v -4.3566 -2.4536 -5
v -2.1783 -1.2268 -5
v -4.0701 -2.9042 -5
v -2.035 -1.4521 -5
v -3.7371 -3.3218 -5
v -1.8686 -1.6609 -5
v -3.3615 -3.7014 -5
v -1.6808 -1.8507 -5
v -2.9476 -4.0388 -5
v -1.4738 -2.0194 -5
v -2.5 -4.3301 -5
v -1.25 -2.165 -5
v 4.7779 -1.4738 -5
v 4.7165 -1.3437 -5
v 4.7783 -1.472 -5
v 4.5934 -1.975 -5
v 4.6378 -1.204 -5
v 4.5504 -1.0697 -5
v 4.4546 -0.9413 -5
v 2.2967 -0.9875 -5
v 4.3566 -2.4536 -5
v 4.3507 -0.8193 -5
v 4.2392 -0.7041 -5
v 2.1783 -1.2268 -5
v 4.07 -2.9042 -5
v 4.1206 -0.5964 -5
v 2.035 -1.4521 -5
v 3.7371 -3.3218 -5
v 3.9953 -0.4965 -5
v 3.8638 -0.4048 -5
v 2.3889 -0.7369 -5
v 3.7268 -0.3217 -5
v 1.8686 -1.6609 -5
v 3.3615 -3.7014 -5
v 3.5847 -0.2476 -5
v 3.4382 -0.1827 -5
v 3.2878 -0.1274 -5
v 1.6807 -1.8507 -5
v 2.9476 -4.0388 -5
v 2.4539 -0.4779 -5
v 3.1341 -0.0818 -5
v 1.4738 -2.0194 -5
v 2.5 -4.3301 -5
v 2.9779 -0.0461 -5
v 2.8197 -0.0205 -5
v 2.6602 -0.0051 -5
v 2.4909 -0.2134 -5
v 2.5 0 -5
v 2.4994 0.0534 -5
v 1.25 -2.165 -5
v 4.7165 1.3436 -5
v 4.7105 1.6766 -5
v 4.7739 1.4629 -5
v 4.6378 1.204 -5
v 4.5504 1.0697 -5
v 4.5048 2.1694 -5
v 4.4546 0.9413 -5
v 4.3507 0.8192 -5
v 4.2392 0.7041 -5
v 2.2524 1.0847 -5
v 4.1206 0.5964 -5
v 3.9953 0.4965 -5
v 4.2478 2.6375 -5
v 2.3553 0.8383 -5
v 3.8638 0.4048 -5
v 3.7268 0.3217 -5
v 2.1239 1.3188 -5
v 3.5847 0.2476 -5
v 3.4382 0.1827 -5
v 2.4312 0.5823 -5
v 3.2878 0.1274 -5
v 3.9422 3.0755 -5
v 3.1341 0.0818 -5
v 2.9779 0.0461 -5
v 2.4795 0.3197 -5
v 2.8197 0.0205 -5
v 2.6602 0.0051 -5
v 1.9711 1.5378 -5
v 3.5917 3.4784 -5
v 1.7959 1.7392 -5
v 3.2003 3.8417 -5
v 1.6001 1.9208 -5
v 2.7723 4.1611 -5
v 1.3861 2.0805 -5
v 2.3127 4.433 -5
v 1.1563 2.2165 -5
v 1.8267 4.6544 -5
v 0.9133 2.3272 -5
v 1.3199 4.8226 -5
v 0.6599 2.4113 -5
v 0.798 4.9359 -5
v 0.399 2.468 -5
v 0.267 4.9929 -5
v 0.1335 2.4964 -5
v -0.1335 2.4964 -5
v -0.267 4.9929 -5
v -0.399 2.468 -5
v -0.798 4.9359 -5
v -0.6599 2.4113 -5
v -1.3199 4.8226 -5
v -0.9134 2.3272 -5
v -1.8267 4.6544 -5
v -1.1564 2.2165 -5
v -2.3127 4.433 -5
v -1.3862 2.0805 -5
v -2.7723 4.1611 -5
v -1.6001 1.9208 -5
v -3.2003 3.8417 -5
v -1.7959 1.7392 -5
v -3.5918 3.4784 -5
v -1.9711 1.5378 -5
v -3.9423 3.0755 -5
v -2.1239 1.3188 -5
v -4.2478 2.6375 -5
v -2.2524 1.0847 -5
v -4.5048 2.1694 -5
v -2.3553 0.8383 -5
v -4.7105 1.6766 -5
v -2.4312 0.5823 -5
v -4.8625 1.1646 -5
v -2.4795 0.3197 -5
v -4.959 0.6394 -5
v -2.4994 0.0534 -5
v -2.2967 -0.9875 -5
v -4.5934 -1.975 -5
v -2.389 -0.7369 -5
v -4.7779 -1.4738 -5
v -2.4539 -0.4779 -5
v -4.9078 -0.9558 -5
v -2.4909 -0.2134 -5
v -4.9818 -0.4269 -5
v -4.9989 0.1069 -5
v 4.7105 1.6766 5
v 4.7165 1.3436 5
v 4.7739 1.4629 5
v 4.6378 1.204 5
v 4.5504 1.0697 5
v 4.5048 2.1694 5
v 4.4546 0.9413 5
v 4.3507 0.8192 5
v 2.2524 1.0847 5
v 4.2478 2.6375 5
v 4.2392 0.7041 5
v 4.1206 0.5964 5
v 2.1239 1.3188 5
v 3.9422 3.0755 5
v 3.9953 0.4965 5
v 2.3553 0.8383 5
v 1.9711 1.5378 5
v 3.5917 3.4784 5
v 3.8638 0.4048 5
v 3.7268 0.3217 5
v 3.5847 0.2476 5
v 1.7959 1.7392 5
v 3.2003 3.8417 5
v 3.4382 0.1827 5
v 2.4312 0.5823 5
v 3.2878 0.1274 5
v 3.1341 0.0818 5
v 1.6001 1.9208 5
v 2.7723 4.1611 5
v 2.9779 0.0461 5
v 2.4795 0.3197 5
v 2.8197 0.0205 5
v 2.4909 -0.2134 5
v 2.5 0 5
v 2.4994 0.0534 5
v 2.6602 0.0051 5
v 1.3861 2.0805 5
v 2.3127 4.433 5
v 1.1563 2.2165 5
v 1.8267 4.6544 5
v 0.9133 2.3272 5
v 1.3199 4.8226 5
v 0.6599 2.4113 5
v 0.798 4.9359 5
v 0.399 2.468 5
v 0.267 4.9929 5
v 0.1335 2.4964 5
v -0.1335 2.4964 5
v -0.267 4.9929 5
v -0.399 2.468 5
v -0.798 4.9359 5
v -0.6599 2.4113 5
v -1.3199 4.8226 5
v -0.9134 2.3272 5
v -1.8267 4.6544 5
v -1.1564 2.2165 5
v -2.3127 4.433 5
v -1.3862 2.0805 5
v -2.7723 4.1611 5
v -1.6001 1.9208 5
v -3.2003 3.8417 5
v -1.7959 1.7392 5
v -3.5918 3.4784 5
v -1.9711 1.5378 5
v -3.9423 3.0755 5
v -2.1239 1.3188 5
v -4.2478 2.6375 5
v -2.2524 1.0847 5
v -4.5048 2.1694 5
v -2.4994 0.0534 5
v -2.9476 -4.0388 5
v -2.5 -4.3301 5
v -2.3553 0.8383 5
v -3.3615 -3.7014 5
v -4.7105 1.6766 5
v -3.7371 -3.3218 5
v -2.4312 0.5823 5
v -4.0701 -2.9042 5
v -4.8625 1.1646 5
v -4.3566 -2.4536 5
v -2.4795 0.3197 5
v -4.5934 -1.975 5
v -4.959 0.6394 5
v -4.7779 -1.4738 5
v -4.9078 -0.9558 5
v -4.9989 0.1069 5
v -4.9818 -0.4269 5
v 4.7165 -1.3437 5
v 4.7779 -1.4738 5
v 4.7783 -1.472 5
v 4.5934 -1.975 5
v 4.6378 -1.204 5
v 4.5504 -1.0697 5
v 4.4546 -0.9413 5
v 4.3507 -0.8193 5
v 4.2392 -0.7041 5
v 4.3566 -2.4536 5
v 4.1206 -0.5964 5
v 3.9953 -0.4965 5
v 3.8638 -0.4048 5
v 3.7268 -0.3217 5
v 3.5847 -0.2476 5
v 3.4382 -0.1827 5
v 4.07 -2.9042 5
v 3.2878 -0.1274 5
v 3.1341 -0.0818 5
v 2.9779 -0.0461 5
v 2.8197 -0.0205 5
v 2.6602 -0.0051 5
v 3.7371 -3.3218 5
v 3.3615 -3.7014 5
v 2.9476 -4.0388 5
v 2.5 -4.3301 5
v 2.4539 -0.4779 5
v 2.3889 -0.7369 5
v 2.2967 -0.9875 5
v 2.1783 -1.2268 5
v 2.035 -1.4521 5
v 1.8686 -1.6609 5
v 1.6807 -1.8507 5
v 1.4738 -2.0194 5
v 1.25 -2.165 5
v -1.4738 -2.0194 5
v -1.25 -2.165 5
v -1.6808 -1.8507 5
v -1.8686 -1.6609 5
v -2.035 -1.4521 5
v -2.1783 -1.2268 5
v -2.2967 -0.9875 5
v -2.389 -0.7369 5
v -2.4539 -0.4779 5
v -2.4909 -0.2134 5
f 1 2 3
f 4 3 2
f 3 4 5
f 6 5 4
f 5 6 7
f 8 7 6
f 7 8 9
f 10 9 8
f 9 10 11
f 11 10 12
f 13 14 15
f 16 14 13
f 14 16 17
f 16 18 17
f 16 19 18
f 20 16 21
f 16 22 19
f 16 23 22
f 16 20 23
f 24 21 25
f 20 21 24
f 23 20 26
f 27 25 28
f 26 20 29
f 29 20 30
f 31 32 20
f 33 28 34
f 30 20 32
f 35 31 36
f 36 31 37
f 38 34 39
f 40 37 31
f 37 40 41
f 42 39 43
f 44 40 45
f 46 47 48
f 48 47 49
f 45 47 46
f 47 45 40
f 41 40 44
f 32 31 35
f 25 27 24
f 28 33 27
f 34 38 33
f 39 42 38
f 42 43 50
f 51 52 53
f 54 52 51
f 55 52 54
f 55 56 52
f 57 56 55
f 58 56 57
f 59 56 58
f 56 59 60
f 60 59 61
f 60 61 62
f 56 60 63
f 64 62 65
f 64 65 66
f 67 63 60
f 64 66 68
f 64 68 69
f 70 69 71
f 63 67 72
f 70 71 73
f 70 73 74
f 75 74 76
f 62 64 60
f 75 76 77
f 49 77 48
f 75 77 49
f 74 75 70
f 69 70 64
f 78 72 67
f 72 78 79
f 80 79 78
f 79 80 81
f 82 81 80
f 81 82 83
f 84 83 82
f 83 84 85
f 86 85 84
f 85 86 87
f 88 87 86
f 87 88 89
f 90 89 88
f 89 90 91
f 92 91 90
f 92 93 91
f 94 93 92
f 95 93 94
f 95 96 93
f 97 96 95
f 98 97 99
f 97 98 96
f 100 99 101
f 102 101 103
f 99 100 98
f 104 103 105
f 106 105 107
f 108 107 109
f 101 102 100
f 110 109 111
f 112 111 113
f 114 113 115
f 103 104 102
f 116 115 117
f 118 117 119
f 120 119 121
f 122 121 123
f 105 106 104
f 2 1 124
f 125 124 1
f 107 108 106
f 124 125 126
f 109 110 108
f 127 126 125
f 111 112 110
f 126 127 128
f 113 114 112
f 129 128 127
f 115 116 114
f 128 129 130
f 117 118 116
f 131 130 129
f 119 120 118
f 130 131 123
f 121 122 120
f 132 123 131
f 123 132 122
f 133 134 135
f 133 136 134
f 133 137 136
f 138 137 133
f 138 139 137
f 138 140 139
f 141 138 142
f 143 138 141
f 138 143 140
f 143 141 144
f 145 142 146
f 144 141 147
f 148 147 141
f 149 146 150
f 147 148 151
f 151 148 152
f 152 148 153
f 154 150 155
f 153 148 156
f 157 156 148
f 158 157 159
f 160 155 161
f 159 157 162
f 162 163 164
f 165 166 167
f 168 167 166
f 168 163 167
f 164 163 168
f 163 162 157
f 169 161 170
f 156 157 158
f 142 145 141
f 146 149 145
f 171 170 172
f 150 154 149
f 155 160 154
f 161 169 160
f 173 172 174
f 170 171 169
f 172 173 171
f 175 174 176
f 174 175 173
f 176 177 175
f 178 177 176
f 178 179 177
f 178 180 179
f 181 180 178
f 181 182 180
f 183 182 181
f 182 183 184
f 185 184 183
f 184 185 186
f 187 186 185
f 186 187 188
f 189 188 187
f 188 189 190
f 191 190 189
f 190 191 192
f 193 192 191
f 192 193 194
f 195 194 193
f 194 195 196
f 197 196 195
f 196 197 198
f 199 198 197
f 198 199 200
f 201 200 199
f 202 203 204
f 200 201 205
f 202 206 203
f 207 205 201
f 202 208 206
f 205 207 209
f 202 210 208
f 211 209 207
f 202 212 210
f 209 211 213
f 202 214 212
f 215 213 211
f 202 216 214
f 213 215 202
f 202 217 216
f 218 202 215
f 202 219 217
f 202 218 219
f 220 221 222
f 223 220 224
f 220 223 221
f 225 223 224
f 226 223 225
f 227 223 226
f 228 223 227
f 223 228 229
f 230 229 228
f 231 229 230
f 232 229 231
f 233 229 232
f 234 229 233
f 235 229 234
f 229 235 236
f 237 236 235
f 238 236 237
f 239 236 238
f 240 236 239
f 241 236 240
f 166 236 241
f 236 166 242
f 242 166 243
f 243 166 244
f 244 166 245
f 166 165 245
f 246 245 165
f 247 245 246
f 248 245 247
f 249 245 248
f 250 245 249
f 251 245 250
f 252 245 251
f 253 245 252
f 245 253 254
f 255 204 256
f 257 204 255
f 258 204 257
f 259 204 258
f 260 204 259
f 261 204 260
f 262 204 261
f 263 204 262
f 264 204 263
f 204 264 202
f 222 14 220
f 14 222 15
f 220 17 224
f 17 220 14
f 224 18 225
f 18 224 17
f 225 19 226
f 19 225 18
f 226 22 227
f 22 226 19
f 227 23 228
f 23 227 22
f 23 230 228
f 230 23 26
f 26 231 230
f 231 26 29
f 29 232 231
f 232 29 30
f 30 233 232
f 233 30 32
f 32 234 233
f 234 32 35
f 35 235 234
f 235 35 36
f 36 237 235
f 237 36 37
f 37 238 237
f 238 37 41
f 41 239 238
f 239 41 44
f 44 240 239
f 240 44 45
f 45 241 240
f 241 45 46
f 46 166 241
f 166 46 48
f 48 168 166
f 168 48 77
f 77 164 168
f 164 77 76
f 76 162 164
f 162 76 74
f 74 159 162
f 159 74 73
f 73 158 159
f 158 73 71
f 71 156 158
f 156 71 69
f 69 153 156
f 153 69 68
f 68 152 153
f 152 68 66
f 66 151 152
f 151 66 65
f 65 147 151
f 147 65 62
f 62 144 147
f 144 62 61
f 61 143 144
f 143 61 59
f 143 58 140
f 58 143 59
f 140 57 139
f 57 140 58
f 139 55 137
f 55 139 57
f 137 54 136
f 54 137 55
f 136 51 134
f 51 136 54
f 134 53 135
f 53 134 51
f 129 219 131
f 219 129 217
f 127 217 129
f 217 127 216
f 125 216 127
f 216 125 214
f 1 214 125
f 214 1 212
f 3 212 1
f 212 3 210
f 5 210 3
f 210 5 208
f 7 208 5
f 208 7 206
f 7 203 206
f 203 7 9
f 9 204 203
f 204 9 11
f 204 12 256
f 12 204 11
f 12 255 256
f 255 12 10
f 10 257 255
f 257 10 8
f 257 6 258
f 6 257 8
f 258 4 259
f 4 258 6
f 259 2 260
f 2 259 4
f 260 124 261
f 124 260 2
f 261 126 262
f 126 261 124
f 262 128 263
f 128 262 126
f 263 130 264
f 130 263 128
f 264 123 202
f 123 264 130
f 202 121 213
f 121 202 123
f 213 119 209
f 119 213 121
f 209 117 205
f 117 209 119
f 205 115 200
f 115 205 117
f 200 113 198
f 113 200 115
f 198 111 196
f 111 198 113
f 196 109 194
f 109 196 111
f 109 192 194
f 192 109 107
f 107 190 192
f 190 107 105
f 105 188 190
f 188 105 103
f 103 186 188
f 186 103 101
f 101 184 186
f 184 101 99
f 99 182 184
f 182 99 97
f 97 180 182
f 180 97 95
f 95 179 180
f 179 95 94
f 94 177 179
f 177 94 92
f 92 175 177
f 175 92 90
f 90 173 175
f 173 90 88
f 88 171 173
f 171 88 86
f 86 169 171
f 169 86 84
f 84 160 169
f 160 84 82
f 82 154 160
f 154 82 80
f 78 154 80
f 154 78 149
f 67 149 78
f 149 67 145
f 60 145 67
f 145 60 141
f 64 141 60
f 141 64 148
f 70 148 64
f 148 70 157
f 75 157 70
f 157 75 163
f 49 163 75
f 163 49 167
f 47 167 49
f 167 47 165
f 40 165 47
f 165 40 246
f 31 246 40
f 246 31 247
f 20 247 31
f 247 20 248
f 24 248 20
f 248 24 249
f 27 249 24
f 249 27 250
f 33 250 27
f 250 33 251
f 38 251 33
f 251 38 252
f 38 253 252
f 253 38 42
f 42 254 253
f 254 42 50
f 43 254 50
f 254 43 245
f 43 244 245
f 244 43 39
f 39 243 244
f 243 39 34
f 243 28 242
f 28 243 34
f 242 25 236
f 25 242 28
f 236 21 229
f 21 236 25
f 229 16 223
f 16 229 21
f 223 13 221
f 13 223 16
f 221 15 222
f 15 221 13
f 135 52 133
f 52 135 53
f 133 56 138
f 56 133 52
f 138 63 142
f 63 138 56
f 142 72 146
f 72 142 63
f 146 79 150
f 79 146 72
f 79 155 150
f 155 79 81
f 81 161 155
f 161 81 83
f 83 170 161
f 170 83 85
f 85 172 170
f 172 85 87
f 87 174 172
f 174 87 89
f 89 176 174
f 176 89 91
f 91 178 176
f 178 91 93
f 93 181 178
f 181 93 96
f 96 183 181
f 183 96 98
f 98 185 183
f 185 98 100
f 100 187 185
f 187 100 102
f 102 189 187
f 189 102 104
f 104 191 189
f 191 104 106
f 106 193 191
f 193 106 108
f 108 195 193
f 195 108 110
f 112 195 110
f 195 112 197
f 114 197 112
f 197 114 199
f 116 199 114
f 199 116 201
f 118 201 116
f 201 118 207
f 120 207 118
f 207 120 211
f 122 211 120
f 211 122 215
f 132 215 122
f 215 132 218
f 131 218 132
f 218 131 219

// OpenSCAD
// Generated by SolidPython 1.1.3 on 2025-02-20 04:03:44
$fn=50;


intersection() {
	translate(v = [-5.0000000000, -5.0000000000, -5.0000000000]) {
		linear_extrude(height = 10) {
			polygon(points = [[7.5000000000, 10.0000000000], [7.6601755500, 9.9948634819], [7.8196929042, 9.9794750346], [7.9778965718, 9.9538978925], [8.1341364598, 9.9182371576], [8.2877705451, 9.8726393675], [8.4381675122, 9.8172918934], [8.5847093478, 9.7524221698], [8.7267938800, 9.6782967603], [8.8638372530, 9.5952202622], [8.9952763262, 9.5035340547], [9.1205709883, 9.4036148959], [9.2392063765, 9.2958733752], [9.3506949927, 9.1807522257], [9.4545787062, 9.0587245046], [9.5504306365, 8.9302916503], [9.6378569075, 8.7959814208], [9.7164982659, 8.6563457256], [9.7860315575, 8.5119583578], [9.8461710551, 8.3634126361], [9.8966696326, 8.2113189666], [9.9373197805, 8.0563023349], [9.9679544585, 7.8989997376], [9.9884477824, 7.7400575648], [9.9987155405, 7.5801289439], [9.9987155405, 7.4198710561], [9.9884477824, 7.2599424352], [9.9679544585, 7.1010002624], [9.9373197805, 6.9436976651], [9.8966696326, 6.7886810334], [9.8461710551, 6.6365873639], [9.7860315575, 6.4880416422], [9.7164982659, 6.3436542744], [9.6378569075, 6.2040185792], [9.5504306365, 6.0697083497], [9.4545787062, 5.9412754954], [9.3506949927, 5.8192477743], [9.2392063765, 5.7041266248], [9.1205709883, 5.5963851041], [8.9952763262, 5.4964659453], [8.8638372530, 5.4047797378], [8.7267938800, 5.3217032397], [8.5847093478, 5.2475778302], [8.4381675122, 5.1827081066], [8.2877705451, 5.1273606325], [8.1341364598, 5.0817628424], [7.9778965718, 5.0461021075], [7.8196929042, 5.0205249654], [7.6601755500, 5.0051365181], [7.5000000000, 5.0000000000], [7.5000000000, 5.0000000000], [7.6601755500, 4.9948634819], [7.8196929042, 4.9794750346], [7.9778965718, 4.9538978925], [8.1341364598, 4.9182371576], [8.2877705451, 4.8726393675], [8.4381675122, 4.8172918934], [8.5847093478, 4.7524221698], [8.7267938800, 4.6782967603], [8.8638372530, 4.5952202622], [8.9952763262, 4.5035340547], [9.1205709883, 4.4036148959], [9.2392063765, 4.2958733752], [9.3506949927, 4.1807522257], [9.4545787062, 4.0587245046], [9.5504306365, 3.9302916503], [9.6378569075, 3.7959814208], [9.7164982659, 3.6563457256], [9.7860315575, 3.5119583578], [9.8461710551, 3.3634126361], [9.8966696326, 3.2113189666], [9.9373197805, 3.0563023349], [9.9679544585, 2.8989997376], [9.9884477824, 2.7400575648], [9.9987155405, 2.5801289439], [9.9987155405, 2.4198710561], [9.9884477824, 2.2599424352], [9.9679544585, 2.1010002624], [9.9373197805, 1.9436976651], [9.8966696326, 1.7886810334], [9.8461710551, 1.6365873639], [9.7860315575, 1.4880416422], [9.7164982659, 1.3436542744], [9.6378569075, 1.2040185792], [9.5504306365, 1.0697083497], [9.4545787062, 0.9412754954], [9.3506949927, 0.8192477743], [9.2392063765, 0.7041266248], [9.1205709883, 0.5963851041], [8.9952763262, 0.4964659453], [8.8638372530, 0.4047797378], [8.7267938800, 0.3217032397], [8.5847093478, 0.2475778302], [8.4381675122, 0.1827081066], [8.2877705451, 0.1273606325], [8.1341364598, 0.0817628424], [7.9778965718, 0.0461021075], [7.8196929042, 0.0205249654], [7.6601755500, 0.0051365181], [7.5000000000, 0.0000000000], [0, 0], [0, 10]]);
		}
	}
	rotate(a = -90, v = [0, 0, 1]) {
		translate(v = [-5.0000000000, -5.0000000000, -5.0000000000]) {
			linear_extrude(height = 10) {
				polygon(points = [[9.3301270189, 7.5000000000], [9.0387948484, 7.9475644476], [8.7013899854, 8.3615044513], [8.3217613875, 8.7370979763], [7.9042396813, 9.0700604263], [7.4535877600, 9.3565935206], [6.9749464512, 9.5934286231], [6.4737758721, 9.7778640289], [5.9557931435, 9.9077957850], [5.4269071715, 9.9817416901], [4.8931512411, 9.9988582039], [4.3606141916, 9.9589500691], [3.8353709579, 9.8624725392], [3.3234132705, 9.7105261849], [2.8305813044, 9.5048443395], [2.3624970575, 9.2477733259], [1.9245002169, 8.9422456905], [1.5215872470, 8.5917467505], [1.1583543913, 8.2002748347], [0.8389452414, 7.7722956725], [0.5670034681, 7.3126914512], [0.3456312568, 6.8267051218], [0.1773539185, 6.3198805903], [0.0640910829, 5.7979994752], [0.0071347997, 5.2670151533], [0.0071347997, 4.7329848467], [0.0640910829, 4.2020005248], [0.1773539185, 3.6801194097], [0.3456312568, 3.1732948782], [0.5670034681, 2.6873085488], [0.8389452414, 2.2277043275], [1.1583543913, 1.7997251653], [1.5215872470, 1.4082532495], [1.9245002169, 1.0577543095], [2.3624970575, 0.7522266741], [2.8305813044, 0.4951556605], [3.3234132705, 0.2894738151], [3.8353709579, 0.1375274608], [4.3606141916, 0.0410499309], [4.8931512411, 0.0011417961], [5.4269071715, 0.0182583099], [5.9557931435, 0.0922042150], [6.4737758721, 0.2221359711], [6.9749464512, 0.4065713769], [7.4535877600, 0.6434064794], [7.9042396813, 0.9299395737], [8.3217613875, 1.2629020237], [8.7013899854, 1.6384955487], [9.0387948484, 2.0524355524], [9.3301270189, 2.5000000000], [7.1650635095, 3.7500000000], [7.0193974242, 3.5262177762], [6.8506949927, 3.3192477743], [6.6608806938, 3.1314510119], [6.4521198406, 2.9649697869], [6.2267938800, 2.8217032397], [5.9874732256, 2.7032856885], [5.7368879360, 2.6110679855], [5.4778965718, 2.5461021075], [5.2134535857, 2.5091291549], [4.9465756205, 2.5005708980], [4.6803070958, 2.5205249654], [4.4176854790, 2.5687637304], [4.1617066352, 2.6447369076], [3.9152906522, 2.7475778302], [3.6812485287, 2.8761133371], [3.4622501085, 3.0288771547], [3.2607936235, 3.2041266248], [3.0791771957, 3.3998625827], [2.9194726207, 3.6138521637], [2.7835017341, 3.8436542744], [2.6728156284, 4.0866474391], [2.5886769593, 4.3400597048], [2.5320455415, 4.6010002624], [2.5035673999, 4.8664924234], [2.5035673999, 5.1335075766], [2.5320455415, 5.3989997376], [2.5886769593, 5.6599402952], [2.6728156284, 5.9133525609], [2.7835017341, 6.1563457256], [2.9194726207, 6.3861478363], [3.0791771957, 6.6001374173], [3.2607936235, 6.7958733752], [3.4622501085, 6.9711228453], [3.6812485287, 7.1238866629], [3.9152906522, 7.2524221698], [4.1617066352, 7.3552630924], [4.4176854790, 7.4312362696], [4.6803070958, 7.4794750346], [4.9465756205, 7.4994291020], [5.2134535857, 7.4908708451], [5.4778965718, 7.4538978925], [5.7368879360, 7.3889320145], [5.9874732256, 7.2967143115], [6.2267938800, 7.1782967603], [6.4521198406, 7.0350302131], [6.6608806938, 6.8685489881], [6.8506949927, 6.6807522257], [7.0193974242, 6.4737822238], [7.1650635095, 6.2500000000]]);
			}
		}
	}
}
/***********************************************
*********      SolidPython code:      **********
************************************************
 
from solid import *
from solid.utils import *

import math
import matplotlib.pyplot as plt
import subprocess
import os

class Hole:
    def __init__(self, x, y, radius):
        """
        Hole defined by:
        :param x: x dimension for center point of the circle as a ratio of letter height
        :param y: y dimension for center point of the circle as a ratio of letter height
        :param radius: radius of circle as a ratio of letter height
        """
        self.x = x
        self.y = y
        self.radius = radius

class Letter3D:
    def __init__(self, name, outer_shape_points, height, holes=None):
        """
        3D Letter defined by:
        :param name: name of letter
        :param outer_shape_points: points defining the outer shape of the letter
        :param heigh: size of cube that letter fits inside
        :param holes: list of Holes
        """
        self.name = name
        self.outer_shape_points = outer_shape_points
        self.holes = holes if holes is None else []
        self.height = height


    def generate(self):
        shape = polygon(points=self.outer_shape_points)

        if self.holes:
            for hole in self.holes:
                circle_hole = circle(r=hole.radius*self.height)
                positioned_hole = translate([hole.x*self.height, hole.y*self.height])(circle_hole)
                shape = difference()(shape, positioned_hole)
        
        shape_3d = linear_extrude(height=self.height)(shape)
        shape_3d = translate([-self.height/2, -self.height/2, -self.height/2])(shape_3d)
        return shape_3d
    
    def render(self):
        scad_render_to_file(self.shape, f"output/{self.name}.scad", file_header='$fn=50;')
        subprocess.run(["C:\\Program Files\\OpenSCAD\\openscad.exe", "-o", f"output\\{self.name}.stl", f"output\\{self.name}.scad"])


class TwoLetter3D:
    def __init__(self, height, letterA, letterA_face, letterB=None, letterB_face=None):
        self.height = height
        self.letterA = letterA
        self.letterB = letterB
        self.letterA_face = letterA_face
        self.letterB_face = letterB_face

    def call_letter_generation(self, letter):
        letter = letter.upper()
        function_name = f"letter_{letter}"
        func = globals().get(function_name)
        if func is None:
            raise ValueError(f"No letter generation function defined for letter '{letter}'.")
        else:
            print(func)
        return func(self.height)
    
    def rotate_object(self, face, shape):
        face = face.lower()
        if face == "z":
            return shape
        if face == "x":
            return rotate(a=90, v=[0,1,0])(shape)
        if face == "y":
            return rotate(a=-90, v=[0,0,1])(shape)
        else:
            raise ValueError("Face must be one of 'x', 'y', or 'z'.")

    def render(self):
        if self.letterA:
            letterA3D = self.call_letter_generation(self.letterA)
            letterA3D = self.rotate_object(self.letterA_face, letterA3D)

        if self.letterB:
            letterB3D = self.call_letter_generation(self.letterB)
            letterB3D = self.rotate_object(self.letterB_face, letterB3D)
            combined = intersection()(letterA3D, letterB3D)
            file_name = self.letterA + self.letterB
            scad_render_to_file(combined, f"output/{file_name}.scad", file_header='$fn=50;')
            subprocess.run(["C:\\Program Files\\OpenSCAD\\openscad.exe", "-o", f"output\\{file_name}.stl", f"output\\{file_name}.scad"])
            return
        else:
            file_name = self.letterA
            scad_render_to_file(letterA3D, f"output/{file_name}.scad", file_header='$fn=50;')
            subprocess.run(["C:\\Program Files\\OpenSCAD\\openscad.exe", "-o", f"output\\{file_name}.stl", f"output\\{file_name}.scad"])
    
                

def arc_points(radius, start_angle, end_angle, center=[0,0], num_points=50):
    angles = [start_angle + i * (end_angle - start_angle) / (num_points - 1)
              for i in range(num_points)]
    points = [
        (center[0] + radius * math.cos(math.radians(angle)),
         center[1] + radius * math.sin(math.radians(angle)))
        for angle in angles
    ]
    return points

def letter_A(h):
    shape_points = [(0,0), (h/2, h), (h, 0), (5/6*h, 0), (2/3*h, 1/3*h), (1/3*h, 1/3*h), (h/6, 0)]
    holes = [Hole(1/2, 7/12, 1/6)]
    A = Letter3D("A", shape_points, h, holes)
    return A.generate()

def letter_B(h):
    top_arc_points = arc_points(h/4, 90, -90, center=[3/4*h, 3/4*h])
    bottom_arc_points = arc_points(h/4, 90, -90, center=[3/4*h, h/4])
    other_points = [(0,0),(0,h)]

    shape_points = top_arc_points + bottom_arc_points + other_points
    holes = [Hole(1/2, 3/4, 1/6), Hole(1/2, 1/4, 1/6)]
    B = Letter3D("B", shape_points, h, holes)
    return B.generate()

def letter_C(h):
    outer_arc_points = arc_points(h/2, 30, 330, center=[h/2,h/2])
    inner_arc_points = arc_points(h/4, 30, 330, center=[h/2,h/2])[::-1]
    shape_points = outer_arc_points + inner_arc_points
    # print(shape_points)
    C = Letter3D("C", shape_points, h)
    return C.generate()


def letter_D(h):
    outer_arc_points = arc_points(h/2, 90, -90, center= [h/2, h/2])
    shape_points = outer_arc_points + [(0,0), (0, h)]
    holes = [Hole(1/2, 1/2, 1/6)]
    D = Letter3D("D", shape_points, h, holes)
    return D.generate()

def letter_E(h):
    points = [(0,0), (h,0), (h,h/5), (h/5,h/5), (h/5,2/5*h), (3/4*h,2/5*h), (3/4*h,3/5*h), (h/5,3/5*h), (h/5,4/5*h), (h,4/5*h), (h,h), (0,h)]
    E = Letter3D("E", points, h)
    return E.generate()

def letter_F(h):
    points = [(0,0), (h/5,0), (h/5,2/5*h), (3/4*h,2/5*h), (3/4*h,3/5*h), (h/5,3/5*h), (h/5,4/5*h), (h,4/5*h), (h,h), (0,h)]
    F = Letter3D("F", points, h)
    return F.generate()

if __name__ == "__main__":
    os.makedirs("output", exist_ok=True)

    letters = [chr(x) for x in range(ord('A'), ord('F') + 1)]
    for letter in letters:
        for other_letter in letters:
            shape = TwoLetter3D(10, letter, "z", other_letter, "y")
            shape.render()
 
 
************************************************/
